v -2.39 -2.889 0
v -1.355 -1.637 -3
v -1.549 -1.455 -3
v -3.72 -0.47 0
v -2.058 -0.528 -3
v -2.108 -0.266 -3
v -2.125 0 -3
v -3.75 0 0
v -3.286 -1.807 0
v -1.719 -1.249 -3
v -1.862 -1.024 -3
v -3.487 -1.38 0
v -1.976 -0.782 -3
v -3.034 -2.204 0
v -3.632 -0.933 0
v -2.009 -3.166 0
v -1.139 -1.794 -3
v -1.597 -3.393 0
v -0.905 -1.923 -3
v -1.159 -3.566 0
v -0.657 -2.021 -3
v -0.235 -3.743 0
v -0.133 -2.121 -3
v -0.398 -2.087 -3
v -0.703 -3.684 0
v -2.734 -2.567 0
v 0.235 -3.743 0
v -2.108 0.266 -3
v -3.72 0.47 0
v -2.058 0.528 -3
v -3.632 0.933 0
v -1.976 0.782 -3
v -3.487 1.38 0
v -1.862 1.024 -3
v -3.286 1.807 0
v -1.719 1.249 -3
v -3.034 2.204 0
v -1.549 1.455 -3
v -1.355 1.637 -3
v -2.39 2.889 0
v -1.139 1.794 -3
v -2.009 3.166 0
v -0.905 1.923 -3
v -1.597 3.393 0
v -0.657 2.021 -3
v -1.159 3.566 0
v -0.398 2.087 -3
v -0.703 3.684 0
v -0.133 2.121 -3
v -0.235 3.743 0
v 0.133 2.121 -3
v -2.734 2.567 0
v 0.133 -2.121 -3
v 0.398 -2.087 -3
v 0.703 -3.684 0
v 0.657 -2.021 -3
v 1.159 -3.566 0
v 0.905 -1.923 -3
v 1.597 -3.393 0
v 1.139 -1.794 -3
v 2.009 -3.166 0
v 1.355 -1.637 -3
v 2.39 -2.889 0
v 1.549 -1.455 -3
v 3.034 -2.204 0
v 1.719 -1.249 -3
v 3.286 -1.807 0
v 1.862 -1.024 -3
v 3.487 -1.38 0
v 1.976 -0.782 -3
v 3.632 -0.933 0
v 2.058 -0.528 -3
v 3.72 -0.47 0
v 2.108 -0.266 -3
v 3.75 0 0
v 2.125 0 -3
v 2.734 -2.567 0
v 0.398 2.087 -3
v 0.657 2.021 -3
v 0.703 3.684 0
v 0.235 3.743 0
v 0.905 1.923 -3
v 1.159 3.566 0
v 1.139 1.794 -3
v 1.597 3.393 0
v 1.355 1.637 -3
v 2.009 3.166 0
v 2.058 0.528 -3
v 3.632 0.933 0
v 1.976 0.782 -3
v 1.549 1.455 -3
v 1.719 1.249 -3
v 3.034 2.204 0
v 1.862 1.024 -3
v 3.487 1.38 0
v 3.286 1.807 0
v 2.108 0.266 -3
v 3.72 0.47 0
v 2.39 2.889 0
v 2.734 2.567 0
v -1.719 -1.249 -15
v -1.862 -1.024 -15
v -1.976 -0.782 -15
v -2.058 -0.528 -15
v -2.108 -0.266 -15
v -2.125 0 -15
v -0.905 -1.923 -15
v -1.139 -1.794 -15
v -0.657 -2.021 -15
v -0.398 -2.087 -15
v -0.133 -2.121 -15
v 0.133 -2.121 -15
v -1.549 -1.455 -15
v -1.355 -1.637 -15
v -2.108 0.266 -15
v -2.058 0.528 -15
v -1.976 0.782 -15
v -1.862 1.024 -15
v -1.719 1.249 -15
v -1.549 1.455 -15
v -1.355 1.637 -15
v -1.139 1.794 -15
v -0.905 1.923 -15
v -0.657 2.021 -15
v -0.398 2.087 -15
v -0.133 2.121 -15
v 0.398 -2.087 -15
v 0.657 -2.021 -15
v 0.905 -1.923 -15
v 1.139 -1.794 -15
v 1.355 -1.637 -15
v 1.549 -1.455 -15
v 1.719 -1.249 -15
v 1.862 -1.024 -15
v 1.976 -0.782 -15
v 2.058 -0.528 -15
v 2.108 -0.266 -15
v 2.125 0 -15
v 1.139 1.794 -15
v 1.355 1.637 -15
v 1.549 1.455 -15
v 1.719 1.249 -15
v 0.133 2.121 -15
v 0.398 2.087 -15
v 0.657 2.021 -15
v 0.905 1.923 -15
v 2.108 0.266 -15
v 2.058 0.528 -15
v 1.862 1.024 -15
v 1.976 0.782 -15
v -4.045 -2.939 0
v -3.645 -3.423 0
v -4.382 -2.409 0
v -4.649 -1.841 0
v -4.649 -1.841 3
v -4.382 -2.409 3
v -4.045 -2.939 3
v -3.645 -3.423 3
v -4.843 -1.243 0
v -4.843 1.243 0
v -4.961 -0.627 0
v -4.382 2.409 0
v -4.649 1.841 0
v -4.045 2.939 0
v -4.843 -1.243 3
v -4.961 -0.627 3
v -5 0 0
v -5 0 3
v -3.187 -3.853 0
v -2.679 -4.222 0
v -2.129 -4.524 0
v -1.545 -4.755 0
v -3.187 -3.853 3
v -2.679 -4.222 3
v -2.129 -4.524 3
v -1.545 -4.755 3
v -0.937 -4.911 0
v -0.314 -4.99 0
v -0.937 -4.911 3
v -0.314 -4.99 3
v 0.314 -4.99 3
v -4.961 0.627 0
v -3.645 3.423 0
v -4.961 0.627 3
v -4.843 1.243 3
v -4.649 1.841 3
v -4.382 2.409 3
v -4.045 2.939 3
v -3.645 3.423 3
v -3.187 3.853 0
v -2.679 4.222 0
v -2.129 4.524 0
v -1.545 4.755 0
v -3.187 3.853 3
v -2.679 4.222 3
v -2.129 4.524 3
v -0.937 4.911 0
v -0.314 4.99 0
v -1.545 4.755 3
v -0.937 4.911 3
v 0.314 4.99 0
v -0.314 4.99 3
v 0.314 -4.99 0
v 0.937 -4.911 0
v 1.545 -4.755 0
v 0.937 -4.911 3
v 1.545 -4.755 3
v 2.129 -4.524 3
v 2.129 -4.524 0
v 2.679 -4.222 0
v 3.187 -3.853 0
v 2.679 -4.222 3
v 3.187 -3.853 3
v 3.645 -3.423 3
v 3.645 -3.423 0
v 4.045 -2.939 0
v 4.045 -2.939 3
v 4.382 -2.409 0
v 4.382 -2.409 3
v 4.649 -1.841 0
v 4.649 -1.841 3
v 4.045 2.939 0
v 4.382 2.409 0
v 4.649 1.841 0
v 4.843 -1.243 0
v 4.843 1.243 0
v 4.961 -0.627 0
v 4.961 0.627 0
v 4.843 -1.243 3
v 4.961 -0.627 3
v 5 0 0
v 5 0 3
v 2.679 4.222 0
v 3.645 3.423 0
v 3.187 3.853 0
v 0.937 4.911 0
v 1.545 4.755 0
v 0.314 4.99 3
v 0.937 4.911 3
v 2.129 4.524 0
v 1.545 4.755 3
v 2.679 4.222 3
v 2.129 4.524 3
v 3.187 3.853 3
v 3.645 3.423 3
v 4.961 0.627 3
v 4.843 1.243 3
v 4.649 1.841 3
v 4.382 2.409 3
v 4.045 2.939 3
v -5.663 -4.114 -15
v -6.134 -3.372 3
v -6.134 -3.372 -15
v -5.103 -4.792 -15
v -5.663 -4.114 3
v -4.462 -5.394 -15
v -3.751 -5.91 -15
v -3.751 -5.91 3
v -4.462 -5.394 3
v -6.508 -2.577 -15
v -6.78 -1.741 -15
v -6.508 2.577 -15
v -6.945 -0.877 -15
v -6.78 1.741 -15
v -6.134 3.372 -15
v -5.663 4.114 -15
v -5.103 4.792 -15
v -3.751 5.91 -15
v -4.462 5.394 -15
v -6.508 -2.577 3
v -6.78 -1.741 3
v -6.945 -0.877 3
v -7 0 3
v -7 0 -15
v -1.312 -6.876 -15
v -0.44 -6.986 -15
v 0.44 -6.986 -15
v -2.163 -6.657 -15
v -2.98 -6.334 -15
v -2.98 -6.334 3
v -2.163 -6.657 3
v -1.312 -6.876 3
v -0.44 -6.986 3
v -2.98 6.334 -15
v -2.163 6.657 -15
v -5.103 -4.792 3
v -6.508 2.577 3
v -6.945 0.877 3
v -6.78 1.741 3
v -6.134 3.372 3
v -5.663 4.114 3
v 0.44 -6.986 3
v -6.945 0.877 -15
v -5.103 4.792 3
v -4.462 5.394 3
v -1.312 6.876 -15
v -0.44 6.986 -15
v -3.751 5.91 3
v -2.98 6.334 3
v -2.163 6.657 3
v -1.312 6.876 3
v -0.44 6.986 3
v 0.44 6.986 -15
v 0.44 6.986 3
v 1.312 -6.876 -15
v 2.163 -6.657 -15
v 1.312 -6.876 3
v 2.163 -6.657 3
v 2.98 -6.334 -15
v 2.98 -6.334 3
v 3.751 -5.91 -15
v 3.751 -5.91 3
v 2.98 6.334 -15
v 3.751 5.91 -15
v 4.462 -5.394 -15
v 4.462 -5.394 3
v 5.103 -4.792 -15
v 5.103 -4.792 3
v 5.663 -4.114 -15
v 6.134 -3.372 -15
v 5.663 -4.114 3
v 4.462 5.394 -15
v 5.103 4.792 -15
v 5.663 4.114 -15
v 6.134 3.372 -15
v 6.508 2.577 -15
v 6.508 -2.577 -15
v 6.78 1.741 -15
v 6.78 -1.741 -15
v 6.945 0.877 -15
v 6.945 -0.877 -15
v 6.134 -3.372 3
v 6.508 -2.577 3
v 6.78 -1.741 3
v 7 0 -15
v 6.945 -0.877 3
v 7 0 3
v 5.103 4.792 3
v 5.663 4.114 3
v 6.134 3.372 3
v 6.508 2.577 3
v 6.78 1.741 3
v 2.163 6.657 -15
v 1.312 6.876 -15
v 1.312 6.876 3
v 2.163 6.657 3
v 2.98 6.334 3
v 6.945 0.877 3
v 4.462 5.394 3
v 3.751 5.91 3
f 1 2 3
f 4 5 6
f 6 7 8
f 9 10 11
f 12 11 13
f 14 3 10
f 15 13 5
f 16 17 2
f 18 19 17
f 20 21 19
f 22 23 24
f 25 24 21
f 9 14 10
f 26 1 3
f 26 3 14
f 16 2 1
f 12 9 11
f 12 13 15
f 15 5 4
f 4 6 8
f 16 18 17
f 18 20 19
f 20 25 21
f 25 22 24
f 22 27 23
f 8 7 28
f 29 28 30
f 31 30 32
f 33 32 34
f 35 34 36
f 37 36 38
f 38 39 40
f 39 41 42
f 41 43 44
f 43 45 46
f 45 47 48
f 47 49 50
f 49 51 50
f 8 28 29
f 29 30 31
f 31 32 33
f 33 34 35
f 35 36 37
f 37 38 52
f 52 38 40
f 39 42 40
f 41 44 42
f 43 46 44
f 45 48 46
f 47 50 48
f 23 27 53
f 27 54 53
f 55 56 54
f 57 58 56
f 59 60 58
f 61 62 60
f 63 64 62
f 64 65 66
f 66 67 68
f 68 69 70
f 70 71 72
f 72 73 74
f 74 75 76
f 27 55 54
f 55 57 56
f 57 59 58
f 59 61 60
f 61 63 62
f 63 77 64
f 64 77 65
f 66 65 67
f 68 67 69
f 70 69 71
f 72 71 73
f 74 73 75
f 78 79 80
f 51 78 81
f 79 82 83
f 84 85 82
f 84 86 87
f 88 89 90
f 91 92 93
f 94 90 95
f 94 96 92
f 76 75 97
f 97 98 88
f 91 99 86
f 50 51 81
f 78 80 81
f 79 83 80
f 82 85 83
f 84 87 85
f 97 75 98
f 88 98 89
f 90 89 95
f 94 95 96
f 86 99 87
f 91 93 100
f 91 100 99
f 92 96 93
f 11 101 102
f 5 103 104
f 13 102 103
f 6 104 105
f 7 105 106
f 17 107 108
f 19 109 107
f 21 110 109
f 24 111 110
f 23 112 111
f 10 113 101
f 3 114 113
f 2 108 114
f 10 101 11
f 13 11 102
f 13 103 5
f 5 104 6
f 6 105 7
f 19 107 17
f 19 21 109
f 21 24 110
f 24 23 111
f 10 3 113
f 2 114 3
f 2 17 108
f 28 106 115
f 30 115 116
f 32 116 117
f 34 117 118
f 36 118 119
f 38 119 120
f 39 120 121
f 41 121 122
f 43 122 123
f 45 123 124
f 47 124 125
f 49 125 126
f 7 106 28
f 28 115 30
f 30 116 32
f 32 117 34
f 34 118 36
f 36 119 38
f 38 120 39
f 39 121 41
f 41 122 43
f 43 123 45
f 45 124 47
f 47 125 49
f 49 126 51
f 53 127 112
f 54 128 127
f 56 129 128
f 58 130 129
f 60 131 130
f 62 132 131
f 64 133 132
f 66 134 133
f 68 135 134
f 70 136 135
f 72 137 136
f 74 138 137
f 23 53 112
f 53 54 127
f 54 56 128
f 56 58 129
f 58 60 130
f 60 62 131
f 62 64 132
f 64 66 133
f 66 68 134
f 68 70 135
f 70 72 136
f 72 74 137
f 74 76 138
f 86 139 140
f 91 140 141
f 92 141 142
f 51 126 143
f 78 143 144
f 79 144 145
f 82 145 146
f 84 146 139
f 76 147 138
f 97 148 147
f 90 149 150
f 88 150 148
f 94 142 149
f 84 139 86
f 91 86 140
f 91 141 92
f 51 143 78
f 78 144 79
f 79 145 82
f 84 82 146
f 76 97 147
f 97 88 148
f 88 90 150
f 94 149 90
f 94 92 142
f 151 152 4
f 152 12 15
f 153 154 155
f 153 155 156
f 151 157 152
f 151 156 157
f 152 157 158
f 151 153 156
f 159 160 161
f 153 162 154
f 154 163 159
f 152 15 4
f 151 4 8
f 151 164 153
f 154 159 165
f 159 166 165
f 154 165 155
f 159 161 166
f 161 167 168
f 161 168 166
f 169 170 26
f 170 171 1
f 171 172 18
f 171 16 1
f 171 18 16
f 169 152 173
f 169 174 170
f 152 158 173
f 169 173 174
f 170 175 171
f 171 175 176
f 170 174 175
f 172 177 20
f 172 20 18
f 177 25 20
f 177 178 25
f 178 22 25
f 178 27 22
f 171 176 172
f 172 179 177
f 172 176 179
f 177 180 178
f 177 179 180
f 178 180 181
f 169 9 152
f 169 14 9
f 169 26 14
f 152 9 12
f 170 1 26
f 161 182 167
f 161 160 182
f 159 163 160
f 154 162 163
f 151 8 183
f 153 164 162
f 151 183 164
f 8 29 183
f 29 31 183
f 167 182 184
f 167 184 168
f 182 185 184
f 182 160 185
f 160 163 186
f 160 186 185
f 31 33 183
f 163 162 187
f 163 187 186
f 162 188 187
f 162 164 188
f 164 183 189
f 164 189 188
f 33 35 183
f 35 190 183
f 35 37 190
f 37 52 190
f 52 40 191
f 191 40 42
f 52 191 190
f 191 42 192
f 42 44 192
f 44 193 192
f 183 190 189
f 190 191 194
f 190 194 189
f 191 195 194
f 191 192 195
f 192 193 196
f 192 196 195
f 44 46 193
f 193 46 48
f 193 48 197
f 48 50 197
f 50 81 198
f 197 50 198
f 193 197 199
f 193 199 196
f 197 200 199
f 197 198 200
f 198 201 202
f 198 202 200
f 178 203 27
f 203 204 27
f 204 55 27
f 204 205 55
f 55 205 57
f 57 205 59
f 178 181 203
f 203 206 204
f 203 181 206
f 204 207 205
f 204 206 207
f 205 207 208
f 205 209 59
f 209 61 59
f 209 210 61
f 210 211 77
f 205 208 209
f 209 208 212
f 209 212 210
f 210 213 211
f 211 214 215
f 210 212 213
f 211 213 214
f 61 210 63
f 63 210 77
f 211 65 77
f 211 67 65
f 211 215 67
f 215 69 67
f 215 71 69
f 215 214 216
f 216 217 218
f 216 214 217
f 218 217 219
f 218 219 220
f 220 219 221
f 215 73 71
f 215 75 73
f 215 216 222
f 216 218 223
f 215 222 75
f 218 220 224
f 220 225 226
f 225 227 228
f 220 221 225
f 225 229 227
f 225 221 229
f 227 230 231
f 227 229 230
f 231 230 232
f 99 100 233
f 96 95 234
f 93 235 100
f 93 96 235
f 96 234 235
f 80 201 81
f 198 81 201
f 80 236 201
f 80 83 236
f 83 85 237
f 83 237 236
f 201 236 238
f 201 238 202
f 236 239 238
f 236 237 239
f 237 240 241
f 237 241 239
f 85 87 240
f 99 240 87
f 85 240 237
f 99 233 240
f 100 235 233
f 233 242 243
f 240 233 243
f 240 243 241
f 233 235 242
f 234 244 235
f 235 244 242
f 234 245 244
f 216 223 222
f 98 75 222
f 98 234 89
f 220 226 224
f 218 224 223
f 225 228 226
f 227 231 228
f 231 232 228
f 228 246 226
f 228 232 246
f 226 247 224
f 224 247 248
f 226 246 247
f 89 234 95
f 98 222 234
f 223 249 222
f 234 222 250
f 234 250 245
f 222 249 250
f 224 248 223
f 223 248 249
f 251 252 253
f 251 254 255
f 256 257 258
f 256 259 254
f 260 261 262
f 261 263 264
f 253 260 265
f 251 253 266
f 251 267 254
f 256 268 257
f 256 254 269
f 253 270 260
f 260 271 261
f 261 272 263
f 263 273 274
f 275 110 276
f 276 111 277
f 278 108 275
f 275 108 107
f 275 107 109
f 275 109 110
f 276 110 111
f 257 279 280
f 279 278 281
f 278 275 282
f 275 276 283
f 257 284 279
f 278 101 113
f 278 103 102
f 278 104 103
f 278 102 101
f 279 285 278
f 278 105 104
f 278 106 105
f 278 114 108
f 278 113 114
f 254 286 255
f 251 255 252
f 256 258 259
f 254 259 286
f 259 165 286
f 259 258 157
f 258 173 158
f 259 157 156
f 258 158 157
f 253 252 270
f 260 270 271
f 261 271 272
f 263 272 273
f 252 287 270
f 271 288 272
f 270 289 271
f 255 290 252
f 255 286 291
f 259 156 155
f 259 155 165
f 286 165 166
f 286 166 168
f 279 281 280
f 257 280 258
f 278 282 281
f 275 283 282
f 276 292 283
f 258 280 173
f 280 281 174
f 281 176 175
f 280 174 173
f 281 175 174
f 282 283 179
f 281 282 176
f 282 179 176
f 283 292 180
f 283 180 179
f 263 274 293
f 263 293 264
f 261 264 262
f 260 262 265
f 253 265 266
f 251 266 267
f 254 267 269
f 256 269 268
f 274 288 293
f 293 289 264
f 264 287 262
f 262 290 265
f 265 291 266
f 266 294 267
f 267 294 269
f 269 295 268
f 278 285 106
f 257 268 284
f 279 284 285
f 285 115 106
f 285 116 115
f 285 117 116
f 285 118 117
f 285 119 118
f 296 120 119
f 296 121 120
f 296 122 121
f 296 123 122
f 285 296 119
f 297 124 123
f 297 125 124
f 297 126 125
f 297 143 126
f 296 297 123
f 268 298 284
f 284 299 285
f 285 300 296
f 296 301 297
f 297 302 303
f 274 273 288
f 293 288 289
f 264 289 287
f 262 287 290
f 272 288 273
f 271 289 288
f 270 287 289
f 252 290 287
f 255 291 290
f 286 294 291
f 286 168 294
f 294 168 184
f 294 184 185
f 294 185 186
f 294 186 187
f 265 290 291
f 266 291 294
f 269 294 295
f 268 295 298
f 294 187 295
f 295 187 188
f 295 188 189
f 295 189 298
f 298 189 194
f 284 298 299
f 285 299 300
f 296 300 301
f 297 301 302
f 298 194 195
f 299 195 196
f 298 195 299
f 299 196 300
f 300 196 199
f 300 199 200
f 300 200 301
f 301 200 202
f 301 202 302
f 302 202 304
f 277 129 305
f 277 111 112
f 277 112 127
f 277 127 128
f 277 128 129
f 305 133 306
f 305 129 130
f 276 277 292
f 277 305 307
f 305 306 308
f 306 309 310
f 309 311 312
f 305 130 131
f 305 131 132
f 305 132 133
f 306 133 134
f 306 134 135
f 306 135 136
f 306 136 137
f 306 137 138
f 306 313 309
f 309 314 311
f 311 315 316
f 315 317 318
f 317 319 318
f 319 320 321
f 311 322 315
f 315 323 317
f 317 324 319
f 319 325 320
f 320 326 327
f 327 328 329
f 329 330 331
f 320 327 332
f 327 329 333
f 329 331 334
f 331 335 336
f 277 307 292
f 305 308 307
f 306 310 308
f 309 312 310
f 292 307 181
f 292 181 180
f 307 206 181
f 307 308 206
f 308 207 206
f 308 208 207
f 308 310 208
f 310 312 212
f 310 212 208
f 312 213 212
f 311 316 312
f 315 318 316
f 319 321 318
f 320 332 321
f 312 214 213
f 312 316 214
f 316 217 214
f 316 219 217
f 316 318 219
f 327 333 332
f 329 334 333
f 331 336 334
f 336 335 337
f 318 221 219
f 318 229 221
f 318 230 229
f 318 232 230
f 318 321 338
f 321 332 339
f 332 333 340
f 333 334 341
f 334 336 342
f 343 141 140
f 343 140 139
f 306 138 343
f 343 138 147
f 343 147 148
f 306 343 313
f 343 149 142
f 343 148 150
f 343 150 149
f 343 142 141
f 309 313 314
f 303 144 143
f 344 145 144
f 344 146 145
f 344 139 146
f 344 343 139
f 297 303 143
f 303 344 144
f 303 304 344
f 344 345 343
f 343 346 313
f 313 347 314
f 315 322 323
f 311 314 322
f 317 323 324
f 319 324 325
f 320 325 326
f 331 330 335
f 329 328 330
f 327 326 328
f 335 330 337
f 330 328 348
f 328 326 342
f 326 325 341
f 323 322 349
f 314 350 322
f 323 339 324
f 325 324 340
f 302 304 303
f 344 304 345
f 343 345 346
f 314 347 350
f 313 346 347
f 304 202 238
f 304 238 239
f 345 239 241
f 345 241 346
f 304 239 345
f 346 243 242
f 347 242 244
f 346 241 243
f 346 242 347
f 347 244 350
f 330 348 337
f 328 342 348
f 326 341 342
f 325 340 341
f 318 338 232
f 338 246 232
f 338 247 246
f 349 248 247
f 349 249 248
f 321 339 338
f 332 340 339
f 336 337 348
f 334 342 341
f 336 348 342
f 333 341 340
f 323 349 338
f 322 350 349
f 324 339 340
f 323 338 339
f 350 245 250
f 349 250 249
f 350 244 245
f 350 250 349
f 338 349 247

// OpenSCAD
$fn = 50;

difference() {
	union() {
		translate(v = [0, 0, -15.0]) {
			cylinder(h = 18, r = 7.0);
		}
	}
	union() {
		translate(v = [0, 0, 0]) {
			rotate(a = [0, 0, 0]) {
				difference() {
					union() {
						translate(v = [0, 0, -18.0]) {
							cylinder(h = 18, r = 2.0);
						}
						translate(v = [0, 0, -3]) {
							cylinder(h = 3, r1 = 2.125, r2 = 3.75);
						}
						translate(v = [0, 0, -18.0]) {
							cylinder(h = 18, r = 2.125);
						}
						translate(v = [0, 0, -18.0]) {
							cylinder(h = 18, r = 2.0);
						}
					}
					union();
				}
			}
		}
		#cylinder(h = 3, r = 5.0);
	}
}
